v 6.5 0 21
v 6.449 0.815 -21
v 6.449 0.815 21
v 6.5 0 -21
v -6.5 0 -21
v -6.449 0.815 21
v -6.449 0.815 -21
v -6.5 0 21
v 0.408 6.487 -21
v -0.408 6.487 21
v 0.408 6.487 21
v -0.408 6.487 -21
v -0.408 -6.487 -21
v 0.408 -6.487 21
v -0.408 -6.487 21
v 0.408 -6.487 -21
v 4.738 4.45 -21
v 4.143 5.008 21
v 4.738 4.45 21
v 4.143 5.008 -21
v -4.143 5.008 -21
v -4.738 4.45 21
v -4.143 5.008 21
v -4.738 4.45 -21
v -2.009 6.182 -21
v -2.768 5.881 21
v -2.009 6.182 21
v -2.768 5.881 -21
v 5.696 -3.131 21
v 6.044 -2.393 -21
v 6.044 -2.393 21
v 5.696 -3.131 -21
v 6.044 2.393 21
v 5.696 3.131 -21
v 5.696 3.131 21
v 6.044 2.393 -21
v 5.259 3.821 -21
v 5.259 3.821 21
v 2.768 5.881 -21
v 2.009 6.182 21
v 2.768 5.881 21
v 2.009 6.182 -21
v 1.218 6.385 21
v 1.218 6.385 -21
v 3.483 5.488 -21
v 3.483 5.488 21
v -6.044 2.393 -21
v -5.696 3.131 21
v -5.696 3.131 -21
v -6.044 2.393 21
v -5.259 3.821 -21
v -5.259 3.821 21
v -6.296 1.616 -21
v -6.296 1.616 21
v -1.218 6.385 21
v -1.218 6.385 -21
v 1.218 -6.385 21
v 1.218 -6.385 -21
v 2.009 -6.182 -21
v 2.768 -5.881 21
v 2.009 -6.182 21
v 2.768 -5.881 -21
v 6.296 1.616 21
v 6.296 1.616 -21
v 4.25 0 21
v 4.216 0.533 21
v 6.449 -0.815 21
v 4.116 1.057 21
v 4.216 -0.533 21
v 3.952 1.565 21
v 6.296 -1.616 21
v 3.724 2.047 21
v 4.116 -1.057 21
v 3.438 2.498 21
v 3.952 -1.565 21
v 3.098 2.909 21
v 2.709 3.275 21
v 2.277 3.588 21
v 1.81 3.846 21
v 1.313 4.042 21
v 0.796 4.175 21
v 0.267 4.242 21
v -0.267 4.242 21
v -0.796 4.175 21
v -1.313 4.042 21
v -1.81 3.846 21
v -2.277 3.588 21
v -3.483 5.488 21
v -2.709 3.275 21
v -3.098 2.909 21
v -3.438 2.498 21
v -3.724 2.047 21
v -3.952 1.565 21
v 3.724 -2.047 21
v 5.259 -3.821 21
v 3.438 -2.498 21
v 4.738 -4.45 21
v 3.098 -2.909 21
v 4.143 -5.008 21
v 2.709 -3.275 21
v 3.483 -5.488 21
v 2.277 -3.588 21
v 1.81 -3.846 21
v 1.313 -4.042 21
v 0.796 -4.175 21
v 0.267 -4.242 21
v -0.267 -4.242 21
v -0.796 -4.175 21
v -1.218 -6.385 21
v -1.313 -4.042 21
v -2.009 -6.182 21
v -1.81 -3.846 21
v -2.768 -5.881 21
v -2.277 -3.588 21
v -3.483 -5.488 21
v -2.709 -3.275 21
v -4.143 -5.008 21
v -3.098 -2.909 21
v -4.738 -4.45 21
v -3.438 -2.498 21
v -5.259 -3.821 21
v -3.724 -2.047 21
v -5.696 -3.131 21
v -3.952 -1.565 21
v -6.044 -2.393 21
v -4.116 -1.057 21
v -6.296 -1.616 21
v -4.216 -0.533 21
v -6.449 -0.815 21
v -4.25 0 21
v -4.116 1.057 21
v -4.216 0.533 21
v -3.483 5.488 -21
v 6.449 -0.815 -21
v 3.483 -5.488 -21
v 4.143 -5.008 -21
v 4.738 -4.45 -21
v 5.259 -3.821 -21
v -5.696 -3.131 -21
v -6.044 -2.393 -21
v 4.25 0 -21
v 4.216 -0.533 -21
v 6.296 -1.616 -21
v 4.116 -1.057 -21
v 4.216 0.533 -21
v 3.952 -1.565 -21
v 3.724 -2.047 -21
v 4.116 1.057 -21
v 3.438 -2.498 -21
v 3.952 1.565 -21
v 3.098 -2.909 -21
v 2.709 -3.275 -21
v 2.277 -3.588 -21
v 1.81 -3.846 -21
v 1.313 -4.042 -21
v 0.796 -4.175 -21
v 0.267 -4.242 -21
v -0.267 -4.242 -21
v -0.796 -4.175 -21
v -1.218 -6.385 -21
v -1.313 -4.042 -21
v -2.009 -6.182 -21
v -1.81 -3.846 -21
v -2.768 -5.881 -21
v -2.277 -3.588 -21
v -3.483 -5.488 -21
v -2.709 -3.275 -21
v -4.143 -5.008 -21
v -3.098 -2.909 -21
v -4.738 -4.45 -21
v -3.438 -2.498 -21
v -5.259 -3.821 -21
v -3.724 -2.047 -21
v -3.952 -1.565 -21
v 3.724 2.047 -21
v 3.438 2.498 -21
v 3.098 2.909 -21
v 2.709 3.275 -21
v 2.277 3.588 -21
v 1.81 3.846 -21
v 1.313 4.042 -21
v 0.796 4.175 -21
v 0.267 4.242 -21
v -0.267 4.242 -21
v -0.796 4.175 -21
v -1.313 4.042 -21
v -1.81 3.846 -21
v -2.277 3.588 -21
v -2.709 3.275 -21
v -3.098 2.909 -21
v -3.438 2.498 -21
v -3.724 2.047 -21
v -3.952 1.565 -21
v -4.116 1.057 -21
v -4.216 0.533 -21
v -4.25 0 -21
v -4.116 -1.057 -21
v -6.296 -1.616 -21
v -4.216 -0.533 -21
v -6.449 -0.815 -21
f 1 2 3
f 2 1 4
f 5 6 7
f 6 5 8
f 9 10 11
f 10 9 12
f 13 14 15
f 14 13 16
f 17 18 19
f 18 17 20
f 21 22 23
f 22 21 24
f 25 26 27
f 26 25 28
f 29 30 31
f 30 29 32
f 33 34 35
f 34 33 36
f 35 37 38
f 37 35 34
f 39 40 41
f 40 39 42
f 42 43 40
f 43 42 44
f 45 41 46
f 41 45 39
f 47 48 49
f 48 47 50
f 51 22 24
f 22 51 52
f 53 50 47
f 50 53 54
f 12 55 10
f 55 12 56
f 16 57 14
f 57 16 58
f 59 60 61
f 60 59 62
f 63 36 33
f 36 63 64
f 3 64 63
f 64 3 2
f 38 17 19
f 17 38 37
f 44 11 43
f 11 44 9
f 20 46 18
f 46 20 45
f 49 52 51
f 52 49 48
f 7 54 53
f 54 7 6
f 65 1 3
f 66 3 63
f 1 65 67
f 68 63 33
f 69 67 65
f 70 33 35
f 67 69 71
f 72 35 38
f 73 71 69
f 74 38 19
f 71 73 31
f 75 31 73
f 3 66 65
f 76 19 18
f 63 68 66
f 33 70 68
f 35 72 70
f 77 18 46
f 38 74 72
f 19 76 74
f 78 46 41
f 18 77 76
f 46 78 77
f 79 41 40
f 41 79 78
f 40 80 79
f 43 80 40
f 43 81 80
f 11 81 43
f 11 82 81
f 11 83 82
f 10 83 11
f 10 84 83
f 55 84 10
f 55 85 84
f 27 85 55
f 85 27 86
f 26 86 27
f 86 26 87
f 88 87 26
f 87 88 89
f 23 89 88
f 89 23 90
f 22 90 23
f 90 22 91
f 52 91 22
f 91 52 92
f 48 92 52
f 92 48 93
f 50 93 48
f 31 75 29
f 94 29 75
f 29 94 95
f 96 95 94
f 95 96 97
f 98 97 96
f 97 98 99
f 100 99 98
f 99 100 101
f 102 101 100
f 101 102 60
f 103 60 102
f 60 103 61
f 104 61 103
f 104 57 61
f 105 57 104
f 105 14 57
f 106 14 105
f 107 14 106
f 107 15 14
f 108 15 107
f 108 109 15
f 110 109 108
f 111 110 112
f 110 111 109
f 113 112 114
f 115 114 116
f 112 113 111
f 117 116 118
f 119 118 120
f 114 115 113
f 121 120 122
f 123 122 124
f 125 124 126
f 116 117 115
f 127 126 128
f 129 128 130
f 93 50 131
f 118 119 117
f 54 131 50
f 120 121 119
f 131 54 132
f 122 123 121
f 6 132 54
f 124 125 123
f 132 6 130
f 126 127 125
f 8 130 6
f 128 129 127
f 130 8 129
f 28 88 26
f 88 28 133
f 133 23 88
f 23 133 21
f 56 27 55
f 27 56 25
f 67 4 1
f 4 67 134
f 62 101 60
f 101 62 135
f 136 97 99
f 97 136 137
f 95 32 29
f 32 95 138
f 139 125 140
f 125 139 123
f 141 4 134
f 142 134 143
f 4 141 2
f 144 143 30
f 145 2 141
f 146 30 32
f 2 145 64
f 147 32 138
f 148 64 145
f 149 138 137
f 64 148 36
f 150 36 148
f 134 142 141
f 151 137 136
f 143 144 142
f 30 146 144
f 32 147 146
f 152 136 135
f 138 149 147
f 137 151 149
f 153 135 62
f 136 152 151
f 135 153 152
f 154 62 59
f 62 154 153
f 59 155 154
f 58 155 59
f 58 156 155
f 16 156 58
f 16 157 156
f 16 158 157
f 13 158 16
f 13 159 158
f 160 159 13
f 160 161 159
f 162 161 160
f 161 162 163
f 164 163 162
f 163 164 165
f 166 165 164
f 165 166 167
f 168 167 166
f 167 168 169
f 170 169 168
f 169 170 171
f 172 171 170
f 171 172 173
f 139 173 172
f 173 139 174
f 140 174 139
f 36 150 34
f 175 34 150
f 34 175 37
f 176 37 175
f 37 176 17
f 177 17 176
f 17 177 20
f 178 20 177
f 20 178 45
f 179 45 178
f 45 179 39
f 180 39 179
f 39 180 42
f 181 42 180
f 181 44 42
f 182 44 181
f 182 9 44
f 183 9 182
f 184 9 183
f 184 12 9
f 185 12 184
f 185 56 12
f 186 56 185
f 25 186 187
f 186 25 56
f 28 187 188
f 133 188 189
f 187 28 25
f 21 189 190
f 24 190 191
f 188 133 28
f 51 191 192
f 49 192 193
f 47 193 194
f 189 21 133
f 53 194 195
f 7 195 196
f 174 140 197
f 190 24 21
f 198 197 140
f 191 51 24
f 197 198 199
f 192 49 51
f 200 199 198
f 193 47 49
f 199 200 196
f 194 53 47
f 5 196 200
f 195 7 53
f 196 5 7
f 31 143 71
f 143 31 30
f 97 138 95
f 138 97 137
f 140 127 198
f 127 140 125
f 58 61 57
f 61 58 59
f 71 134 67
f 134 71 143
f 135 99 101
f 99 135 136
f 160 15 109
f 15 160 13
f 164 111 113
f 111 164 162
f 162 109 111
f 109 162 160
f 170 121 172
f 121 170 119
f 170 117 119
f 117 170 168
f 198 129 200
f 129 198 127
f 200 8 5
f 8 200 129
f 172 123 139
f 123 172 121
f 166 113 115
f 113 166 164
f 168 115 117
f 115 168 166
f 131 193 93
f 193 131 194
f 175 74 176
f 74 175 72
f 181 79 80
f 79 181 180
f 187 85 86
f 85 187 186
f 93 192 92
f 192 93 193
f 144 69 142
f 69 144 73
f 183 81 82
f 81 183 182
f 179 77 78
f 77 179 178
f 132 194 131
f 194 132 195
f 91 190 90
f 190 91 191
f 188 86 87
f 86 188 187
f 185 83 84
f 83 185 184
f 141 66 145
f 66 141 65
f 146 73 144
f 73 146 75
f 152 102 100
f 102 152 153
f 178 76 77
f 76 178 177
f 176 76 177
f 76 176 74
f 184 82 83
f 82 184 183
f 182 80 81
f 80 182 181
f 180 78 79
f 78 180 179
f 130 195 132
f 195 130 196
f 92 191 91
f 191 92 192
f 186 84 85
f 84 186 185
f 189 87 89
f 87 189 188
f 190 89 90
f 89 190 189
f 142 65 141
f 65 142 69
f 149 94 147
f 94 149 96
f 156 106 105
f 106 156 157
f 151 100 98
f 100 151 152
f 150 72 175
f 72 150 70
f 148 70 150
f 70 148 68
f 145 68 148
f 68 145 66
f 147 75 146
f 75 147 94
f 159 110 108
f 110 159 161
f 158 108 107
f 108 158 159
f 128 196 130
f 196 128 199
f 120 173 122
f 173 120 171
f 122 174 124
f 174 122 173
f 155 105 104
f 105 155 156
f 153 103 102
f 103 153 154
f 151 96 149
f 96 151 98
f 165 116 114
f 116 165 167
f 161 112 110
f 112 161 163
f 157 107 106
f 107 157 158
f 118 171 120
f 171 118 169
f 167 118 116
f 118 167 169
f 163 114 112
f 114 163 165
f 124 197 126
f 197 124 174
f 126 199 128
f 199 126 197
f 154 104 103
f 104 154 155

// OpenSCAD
$fn = 50;


difference() {
	union() {
		translate(v = [0, 0, -21.0000000000]) {
			cylinder(h = 42, r = 6.5000000000);
		}
	}
	union() {
		translate(v = [0, 0, -100.0000000000]) {
			cylinder(h = 200, r = 4.2500000000);
		}
	}
}
